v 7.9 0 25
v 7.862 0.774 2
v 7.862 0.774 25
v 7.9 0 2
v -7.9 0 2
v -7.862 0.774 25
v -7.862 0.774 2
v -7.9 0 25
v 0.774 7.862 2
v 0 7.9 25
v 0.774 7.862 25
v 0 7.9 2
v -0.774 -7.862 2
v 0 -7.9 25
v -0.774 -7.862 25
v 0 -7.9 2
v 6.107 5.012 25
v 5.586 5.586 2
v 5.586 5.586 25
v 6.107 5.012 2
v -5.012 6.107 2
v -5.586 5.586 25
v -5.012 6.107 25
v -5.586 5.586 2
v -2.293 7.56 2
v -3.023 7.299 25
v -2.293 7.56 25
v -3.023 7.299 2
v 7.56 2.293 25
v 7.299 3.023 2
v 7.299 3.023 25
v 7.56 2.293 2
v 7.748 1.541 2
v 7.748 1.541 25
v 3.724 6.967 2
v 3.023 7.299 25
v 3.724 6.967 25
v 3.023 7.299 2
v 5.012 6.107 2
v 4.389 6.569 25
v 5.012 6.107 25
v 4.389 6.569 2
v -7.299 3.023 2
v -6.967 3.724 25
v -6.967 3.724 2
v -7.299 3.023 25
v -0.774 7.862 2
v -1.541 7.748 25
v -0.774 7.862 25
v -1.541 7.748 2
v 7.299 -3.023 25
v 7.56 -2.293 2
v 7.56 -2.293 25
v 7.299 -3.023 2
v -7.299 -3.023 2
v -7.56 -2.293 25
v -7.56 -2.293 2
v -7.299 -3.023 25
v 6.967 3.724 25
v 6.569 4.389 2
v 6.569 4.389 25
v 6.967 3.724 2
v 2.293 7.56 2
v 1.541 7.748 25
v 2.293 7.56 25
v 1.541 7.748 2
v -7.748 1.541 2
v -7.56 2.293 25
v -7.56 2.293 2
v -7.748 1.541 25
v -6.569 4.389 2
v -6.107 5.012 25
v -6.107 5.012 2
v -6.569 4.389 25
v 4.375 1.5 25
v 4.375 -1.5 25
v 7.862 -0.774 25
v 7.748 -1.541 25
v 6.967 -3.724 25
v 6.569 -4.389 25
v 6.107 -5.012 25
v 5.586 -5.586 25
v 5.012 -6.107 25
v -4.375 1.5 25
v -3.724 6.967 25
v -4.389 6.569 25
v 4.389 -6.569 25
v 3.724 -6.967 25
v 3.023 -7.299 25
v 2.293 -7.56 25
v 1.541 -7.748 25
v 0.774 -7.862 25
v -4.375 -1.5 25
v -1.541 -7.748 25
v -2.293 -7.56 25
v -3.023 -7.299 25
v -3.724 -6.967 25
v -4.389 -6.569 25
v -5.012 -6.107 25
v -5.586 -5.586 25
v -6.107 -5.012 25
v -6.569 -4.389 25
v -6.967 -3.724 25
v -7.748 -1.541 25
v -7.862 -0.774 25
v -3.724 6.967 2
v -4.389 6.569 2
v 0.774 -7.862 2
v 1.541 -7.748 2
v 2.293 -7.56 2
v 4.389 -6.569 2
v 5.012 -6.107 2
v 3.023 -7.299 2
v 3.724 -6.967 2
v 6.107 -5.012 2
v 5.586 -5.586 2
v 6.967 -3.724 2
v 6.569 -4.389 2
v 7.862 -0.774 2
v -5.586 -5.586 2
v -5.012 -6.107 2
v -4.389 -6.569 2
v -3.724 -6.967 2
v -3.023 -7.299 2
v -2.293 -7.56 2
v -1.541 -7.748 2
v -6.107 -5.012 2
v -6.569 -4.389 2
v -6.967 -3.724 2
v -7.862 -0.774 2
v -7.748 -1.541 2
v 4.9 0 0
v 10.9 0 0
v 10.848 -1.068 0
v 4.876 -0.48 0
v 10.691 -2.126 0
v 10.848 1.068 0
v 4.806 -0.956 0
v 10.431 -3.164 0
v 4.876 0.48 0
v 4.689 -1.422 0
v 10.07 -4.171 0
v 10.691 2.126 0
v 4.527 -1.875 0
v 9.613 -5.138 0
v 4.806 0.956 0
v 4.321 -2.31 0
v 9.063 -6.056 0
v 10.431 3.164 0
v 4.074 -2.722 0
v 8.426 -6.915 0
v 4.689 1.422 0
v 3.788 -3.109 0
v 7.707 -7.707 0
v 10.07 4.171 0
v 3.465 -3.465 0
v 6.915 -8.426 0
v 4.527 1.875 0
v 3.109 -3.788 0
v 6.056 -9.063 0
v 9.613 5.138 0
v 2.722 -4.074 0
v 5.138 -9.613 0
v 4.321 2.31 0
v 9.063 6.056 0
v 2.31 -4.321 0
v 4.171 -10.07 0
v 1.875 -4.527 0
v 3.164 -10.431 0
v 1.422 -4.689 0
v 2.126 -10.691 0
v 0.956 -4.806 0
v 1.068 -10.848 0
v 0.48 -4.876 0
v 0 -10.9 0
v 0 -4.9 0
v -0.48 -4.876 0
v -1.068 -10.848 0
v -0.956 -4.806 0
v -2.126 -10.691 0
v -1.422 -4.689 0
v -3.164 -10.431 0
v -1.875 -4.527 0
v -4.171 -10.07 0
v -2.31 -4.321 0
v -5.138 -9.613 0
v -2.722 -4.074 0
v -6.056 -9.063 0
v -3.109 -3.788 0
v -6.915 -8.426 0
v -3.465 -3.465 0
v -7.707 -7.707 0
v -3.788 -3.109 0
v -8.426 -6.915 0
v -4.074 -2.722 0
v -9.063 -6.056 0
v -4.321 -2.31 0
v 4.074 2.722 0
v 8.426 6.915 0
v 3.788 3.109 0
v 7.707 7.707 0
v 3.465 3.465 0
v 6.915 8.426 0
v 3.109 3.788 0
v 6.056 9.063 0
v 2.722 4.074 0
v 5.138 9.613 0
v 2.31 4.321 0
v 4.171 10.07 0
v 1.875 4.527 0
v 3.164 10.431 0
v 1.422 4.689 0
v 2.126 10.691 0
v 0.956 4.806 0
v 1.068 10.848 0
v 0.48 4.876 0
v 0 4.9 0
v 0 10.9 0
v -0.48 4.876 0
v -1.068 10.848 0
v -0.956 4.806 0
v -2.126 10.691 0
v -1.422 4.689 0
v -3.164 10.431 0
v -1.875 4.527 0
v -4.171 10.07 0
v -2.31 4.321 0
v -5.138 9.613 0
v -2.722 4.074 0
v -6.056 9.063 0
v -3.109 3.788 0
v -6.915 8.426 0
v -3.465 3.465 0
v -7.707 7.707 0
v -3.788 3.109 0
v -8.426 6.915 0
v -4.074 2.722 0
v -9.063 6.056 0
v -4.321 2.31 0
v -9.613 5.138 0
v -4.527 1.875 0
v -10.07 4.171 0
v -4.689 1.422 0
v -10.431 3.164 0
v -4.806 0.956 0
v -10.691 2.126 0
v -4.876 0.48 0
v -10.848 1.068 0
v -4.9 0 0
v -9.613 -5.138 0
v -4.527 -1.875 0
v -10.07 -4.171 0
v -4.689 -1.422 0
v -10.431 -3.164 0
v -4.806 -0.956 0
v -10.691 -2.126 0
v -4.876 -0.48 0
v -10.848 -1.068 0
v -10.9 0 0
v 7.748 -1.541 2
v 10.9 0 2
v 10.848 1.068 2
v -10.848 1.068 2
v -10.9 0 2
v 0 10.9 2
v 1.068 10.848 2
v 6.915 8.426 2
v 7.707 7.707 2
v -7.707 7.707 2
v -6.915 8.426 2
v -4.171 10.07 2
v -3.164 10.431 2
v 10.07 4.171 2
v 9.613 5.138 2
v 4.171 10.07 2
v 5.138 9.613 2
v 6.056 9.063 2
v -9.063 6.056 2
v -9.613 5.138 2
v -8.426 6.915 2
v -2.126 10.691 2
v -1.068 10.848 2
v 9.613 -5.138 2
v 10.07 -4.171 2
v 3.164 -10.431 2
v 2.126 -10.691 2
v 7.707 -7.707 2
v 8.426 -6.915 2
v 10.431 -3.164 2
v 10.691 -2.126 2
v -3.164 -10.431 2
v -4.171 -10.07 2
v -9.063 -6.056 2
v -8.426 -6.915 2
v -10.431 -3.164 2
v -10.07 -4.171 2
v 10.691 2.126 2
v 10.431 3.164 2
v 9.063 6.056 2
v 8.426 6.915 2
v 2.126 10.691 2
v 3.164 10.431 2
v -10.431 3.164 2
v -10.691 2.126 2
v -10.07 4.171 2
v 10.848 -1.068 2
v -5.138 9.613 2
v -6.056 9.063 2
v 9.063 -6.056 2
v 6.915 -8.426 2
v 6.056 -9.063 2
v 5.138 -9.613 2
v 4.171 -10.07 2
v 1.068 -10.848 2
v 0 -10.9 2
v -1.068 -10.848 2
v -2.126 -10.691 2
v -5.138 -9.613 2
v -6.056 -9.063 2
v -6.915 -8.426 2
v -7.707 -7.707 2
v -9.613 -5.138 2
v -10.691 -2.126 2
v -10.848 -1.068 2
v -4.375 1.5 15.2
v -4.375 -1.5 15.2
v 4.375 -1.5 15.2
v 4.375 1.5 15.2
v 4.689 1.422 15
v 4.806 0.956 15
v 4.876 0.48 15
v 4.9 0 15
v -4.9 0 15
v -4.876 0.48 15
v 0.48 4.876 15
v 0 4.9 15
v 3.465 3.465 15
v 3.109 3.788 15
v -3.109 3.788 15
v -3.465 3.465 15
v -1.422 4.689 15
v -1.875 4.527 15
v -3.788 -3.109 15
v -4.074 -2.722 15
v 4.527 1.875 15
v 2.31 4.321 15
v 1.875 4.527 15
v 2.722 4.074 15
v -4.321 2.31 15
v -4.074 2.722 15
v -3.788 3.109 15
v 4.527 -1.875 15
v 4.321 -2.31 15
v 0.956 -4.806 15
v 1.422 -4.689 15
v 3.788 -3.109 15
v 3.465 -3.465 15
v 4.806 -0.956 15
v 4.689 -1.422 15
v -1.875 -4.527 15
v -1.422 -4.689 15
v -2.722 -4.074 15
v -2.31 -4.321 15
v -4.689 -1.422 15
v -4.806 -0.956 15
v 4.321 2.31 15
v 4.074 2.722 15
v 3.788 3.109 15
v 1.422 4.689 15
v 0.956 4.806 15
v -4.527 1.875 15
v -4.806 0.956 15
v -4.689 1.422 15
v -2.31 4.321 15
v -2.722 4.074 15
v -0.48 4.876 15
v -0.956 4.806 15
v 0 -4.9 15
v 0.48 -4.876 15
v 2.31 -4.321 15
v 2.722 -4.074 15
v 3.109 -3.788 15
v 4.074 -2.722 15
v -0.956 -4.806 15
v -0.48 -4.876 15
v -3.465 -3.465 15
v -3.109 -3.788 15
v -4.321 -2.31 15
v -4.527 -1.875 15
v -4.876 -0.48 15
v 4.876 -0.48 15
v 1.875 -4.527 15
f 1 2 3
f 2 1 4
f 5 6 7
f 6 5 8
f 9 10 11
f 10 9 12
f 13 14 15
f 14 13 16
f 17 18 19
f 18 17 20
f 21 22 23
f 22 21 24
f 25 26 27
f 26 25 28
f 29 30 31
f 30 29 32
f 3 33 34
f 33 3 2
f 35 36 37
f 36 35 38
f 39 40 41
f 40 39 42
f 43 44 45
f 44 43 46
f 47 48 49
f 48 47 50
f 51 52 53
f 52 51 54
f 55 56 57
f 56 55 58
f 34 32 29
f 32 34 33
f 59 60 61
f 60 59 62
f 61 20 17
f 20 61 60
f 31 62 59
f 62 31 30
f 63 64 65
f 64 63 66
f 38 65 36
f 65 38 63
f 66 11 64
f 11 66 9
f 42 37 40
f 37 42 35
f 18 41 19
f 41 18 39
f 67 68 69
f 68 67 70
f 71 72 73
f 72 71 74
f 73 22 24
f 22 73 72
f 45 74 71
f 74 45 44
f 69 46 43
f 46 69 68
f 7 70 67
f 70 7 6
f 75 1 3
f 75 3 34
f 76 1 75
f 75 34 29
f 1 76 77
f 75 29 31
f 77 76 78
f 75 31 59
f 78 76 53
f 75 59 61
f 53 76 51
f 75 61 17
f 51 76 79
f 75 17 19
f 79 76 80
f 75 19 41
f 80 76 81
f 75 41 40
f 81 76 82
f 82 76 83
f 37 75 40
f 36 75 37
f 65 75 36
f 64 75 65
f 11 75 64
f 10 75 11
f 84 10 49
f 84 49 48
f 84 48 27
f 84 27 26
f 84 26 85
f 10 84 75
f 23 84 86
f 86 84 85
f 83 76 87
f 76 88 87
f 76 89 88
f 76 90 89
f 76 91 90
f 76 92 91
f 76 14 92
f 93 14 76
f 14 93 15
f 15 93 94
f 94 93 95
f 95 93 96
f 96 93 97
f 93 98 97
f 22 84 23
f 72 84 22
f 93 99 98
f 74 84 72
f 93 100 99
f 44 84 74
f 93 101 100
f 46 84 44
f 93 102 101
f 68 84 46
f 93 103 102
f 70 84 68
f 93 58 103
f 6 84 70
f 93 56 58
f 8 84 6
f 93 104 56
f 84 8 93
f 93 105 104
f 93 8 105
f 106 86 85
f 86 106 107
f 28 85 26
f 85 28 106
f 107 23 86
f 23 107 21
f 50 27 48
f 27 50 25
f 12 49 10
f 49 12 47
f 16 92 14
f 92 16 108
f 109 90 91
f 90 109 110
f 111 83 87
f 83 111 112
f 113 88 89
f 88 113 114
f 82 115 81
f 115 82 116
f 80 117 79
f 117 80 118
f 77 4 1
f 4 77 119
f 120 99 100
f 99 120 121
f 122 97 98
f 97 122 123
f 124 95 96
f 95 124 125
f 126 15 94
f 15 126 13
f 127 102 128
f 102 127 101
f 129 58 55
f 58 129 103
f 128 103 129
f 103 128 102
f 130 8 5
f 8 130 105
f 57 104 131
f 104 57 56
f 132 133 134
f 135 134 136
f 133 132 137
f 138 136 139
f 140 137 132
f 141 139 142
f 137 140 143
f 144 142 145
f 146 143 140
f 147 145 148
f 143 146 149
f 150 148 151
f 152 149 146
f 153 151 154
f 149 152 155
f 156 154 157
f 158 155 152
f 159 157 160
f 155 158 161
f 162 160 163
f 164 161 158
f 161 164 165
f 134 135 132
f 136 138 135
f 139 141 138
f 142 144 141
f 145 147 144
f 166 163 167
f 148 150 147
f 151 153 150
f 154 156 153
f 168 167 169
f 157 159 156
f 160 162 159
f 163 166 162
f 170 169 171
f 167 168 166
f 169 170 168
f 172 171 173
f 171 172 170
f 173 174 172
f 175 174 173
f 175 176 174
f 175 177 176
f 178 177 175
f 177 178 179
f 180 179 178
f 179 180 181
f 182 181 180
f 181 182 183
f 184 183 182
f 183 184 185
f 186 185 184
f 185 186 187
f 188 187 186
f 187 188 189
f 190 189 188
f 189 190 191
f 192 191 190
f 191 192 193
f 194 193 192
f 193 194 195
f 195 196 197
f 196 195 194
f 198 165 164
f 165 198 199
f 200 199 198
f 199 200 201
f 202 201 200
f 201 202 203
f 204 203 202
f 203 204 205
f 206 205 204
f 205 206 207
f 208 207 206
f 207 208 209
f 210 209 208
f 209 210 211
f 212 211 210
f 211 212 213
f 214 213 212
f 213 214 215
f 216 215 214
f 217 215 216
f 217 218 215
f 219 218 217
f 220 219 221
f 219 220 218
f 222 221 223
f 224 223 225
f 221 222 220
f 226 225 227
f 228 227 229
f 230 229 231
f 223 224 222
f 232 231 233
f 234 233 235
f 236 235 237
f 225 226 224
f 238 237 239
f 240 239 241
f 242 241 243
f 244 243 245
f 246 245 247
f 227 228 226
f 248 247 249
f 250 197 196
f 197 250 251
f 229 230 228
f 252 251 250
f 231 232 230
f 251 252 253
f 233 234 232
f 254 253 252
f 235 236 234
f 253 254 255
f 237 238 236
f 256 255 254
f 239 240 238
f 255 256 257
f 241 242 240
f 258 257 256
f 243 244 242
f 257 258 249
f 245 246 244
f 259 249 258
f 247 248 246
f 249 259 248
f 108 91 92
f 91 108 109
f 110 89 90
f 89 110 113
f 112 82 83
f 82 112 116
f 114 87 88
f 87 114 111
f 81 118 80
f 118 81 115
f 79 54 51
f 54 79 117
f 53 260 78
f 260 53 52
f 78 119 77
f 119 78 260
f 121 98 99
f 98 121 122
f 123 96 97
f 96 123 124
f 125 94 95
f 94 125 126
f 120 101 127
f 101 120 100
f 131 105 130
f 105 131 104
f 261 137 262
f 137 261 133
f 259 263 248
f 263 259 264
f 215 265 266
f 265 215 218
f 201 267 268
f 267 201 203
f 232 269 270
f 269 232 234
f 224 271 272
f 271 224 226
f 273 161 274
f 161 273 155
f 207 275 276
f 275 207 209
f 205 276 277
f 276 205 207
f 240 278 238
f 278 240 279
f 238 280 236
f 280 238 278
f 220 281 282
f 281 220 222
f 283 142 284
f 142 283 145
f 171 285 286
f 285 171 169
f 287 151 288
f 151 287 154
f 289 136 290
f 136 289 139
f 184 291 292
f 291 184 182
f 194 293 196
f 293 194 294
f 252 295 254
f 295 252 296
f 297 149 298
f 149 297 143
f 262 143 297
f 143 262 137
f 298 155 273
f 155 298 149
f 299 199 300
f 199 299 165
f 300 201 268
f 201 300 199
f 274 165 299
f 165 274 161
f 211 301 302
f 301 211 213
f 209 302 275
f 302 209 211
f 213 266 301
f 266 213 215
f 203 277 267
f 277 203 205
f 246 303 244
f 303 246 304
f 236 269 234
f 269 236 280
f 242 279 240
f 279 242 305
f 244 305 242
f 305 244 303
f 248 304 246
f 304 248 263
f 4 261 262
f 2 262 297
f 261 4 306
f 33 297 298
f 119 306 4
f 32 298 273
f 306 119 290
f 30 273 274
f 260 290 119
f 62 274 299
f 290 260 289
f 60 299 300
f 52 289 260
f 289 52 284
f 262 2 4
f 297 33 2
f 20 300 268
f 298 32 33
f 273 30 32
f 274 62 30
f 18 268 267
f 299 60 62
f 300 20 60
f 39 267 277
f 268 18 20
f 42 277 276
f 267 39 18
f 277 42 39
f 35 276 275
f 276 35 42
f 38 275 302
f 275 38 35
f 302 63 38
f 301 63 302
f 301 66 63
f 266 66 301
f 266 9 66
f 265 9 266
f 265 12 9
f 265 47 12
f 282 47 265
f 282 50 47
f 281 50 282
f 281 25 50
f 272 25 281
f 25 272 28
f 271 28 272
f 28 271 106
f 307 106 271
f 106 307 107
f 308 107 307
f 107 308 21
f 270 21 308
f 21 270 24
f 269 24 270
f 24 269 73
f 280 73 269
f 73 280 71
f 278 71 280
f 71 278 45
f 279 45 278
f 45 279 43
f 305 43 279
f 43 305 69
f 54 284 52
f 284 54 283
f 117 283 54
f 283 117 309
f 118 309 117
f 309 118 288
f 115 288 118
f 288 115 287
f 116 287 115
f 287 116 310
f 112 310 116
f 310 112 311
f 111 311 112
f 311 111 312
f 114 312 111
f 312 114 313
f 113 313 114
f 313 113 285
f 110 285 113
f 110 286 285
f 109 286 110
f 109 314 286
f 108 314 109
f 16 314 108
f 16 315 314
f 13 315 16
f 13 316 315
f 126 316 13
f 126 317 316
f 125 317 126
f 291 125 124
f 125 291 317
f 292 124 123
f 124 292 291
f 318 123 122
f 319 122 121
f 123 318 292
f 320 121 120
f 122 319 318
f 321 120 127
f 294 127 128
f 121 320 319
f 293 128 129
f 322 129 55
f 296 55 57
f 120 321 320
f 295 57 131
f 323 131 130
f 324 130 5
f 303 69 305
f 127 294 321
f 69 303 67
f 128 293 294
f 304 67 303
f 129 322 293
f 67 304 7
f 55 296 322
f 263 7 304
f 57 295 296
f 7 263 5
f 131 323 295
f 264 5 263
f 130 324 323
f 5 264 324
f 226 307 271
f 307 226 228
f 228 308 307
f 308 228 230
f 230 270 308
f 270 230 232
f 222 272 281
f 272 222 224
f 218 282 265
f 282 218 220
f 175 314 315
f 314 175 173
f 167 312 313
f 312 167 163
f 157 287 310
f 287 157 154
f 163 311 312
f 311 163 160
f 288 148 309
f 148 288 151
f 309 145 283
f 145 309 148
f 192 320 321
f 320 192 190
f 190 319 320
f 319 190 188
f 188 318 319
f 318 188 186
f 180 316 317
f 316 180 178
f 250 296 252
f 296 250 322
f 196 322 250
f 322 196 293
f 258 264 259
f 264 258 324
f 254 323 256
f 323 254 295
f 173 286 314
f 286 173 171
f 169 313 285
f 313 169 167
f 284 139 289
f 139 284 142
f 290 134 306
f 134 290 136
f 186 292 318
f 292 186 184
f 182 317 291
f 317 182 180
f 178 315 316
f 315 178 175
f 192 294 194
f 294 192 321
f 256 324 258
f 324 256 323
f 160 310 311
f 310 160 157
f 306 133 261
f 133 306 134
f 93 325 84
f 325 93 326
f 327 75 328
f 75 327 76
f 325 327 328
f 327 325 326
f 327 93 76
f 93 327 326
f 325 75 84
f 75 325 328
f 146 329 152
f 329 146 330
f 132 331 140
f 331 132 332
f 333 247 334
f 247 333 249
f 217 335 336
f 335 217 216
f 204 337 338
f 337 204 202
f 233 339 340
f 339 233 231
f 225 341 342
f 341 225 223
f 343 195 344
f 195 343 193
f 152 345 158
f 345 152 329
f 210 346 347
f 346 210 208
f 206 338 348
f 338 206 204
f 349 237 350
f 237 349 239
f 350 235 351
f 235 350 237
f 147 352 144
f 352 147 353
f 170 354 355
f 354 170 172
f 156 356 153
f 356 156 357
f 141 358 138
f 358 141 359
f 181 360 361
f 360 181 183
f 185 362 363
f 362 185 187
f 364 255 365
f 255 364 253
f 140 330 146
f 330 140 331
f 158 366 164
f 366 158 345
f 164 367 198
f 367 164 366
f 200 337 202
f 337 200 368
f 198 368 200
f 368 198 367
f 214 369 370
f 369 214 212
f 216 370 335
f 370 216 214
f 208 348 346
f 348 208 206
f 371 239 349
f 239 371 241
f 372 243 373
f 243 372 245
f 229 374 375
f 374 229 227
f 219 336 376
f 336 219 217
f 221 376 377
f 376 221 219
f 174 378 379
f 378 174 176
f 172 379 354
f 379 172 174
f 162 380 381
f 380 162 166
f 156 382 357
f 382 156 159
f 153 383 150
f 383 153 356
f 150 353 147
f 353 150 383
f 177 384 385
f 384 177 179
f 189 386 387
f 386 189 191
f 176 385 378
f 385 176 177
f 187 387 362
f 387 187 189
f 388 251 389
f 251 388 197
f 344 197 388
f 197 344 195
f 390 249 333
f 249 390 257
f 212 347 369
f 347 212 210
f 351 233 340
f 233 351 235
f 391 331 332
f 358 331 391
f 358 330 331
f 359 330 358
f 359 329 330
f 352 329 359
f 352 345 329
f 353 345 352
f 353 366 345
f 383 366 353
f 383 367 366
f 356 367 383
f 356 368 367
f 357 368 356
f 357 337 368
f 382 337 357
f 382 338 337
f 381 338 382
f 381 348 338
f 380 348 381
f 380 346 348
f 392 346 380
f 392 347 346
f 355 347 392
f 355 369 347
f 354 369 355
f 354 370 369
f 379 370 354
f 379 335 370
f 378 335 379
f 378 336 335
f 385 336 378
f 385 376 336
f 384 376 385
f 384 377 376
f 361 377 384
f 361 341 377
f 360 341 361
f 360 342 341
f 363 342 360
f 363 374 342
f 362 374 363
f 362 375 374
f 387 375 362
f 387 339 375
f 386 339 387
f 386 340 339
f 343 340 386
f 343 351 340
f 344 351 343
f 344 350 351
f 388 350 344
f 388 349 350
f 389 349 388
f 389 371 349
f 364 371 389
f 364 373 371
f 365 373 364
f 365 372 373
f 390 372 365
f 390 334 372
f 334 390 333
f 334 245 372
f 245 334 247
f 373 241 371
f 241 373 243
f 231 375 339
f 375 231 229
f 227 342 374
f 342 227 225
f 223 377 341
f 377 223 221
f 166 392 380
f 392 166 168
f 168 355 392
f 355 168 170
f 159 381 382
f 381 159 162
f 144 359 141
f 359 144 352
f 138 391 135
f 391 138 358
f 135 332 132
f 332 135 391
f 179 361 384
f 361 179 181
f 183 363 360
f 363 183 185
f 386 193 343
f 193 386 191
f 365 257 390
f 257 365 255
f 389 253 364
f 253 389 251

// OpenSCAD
/*
 * PG9 Style Cable Gland for square Cable
 *
 * Initially designed for Sommer Cable Tribun 240 Speaker Wire,
 * to be filled with resin for water tightness.
 */
 
tube_diameter = 15.8;
tube_lip = 3;
tube_lip_height = 2;
tube_height = 25;
tube_inner_height = 15;
cable_width = 17.5/2;
cable_height = 3;
wall_thickness = 3;

sacrificial_layer_thickness = 0.2;

f = 0.01;
df = 2 * f;

$fn = 64;

difference() {
    union() {
        cylinder(d = tube_diameter, h = tube_height);
        cylinder(d = tube_diameter + 2 * tube_lip, h = tube_lip_height);
    }
    translate([-cable_width/2, -cable_height/2, tube_inner_height + sacrificial_layer_thickness])
        cube([cable_width, cable_height, tube_height - tube_inner_height]);
    translate([0, 0, -f])
        cylinder(d = tube_diameter - 2 * wall_thickness, h = tube_inner_height + f); 
}
